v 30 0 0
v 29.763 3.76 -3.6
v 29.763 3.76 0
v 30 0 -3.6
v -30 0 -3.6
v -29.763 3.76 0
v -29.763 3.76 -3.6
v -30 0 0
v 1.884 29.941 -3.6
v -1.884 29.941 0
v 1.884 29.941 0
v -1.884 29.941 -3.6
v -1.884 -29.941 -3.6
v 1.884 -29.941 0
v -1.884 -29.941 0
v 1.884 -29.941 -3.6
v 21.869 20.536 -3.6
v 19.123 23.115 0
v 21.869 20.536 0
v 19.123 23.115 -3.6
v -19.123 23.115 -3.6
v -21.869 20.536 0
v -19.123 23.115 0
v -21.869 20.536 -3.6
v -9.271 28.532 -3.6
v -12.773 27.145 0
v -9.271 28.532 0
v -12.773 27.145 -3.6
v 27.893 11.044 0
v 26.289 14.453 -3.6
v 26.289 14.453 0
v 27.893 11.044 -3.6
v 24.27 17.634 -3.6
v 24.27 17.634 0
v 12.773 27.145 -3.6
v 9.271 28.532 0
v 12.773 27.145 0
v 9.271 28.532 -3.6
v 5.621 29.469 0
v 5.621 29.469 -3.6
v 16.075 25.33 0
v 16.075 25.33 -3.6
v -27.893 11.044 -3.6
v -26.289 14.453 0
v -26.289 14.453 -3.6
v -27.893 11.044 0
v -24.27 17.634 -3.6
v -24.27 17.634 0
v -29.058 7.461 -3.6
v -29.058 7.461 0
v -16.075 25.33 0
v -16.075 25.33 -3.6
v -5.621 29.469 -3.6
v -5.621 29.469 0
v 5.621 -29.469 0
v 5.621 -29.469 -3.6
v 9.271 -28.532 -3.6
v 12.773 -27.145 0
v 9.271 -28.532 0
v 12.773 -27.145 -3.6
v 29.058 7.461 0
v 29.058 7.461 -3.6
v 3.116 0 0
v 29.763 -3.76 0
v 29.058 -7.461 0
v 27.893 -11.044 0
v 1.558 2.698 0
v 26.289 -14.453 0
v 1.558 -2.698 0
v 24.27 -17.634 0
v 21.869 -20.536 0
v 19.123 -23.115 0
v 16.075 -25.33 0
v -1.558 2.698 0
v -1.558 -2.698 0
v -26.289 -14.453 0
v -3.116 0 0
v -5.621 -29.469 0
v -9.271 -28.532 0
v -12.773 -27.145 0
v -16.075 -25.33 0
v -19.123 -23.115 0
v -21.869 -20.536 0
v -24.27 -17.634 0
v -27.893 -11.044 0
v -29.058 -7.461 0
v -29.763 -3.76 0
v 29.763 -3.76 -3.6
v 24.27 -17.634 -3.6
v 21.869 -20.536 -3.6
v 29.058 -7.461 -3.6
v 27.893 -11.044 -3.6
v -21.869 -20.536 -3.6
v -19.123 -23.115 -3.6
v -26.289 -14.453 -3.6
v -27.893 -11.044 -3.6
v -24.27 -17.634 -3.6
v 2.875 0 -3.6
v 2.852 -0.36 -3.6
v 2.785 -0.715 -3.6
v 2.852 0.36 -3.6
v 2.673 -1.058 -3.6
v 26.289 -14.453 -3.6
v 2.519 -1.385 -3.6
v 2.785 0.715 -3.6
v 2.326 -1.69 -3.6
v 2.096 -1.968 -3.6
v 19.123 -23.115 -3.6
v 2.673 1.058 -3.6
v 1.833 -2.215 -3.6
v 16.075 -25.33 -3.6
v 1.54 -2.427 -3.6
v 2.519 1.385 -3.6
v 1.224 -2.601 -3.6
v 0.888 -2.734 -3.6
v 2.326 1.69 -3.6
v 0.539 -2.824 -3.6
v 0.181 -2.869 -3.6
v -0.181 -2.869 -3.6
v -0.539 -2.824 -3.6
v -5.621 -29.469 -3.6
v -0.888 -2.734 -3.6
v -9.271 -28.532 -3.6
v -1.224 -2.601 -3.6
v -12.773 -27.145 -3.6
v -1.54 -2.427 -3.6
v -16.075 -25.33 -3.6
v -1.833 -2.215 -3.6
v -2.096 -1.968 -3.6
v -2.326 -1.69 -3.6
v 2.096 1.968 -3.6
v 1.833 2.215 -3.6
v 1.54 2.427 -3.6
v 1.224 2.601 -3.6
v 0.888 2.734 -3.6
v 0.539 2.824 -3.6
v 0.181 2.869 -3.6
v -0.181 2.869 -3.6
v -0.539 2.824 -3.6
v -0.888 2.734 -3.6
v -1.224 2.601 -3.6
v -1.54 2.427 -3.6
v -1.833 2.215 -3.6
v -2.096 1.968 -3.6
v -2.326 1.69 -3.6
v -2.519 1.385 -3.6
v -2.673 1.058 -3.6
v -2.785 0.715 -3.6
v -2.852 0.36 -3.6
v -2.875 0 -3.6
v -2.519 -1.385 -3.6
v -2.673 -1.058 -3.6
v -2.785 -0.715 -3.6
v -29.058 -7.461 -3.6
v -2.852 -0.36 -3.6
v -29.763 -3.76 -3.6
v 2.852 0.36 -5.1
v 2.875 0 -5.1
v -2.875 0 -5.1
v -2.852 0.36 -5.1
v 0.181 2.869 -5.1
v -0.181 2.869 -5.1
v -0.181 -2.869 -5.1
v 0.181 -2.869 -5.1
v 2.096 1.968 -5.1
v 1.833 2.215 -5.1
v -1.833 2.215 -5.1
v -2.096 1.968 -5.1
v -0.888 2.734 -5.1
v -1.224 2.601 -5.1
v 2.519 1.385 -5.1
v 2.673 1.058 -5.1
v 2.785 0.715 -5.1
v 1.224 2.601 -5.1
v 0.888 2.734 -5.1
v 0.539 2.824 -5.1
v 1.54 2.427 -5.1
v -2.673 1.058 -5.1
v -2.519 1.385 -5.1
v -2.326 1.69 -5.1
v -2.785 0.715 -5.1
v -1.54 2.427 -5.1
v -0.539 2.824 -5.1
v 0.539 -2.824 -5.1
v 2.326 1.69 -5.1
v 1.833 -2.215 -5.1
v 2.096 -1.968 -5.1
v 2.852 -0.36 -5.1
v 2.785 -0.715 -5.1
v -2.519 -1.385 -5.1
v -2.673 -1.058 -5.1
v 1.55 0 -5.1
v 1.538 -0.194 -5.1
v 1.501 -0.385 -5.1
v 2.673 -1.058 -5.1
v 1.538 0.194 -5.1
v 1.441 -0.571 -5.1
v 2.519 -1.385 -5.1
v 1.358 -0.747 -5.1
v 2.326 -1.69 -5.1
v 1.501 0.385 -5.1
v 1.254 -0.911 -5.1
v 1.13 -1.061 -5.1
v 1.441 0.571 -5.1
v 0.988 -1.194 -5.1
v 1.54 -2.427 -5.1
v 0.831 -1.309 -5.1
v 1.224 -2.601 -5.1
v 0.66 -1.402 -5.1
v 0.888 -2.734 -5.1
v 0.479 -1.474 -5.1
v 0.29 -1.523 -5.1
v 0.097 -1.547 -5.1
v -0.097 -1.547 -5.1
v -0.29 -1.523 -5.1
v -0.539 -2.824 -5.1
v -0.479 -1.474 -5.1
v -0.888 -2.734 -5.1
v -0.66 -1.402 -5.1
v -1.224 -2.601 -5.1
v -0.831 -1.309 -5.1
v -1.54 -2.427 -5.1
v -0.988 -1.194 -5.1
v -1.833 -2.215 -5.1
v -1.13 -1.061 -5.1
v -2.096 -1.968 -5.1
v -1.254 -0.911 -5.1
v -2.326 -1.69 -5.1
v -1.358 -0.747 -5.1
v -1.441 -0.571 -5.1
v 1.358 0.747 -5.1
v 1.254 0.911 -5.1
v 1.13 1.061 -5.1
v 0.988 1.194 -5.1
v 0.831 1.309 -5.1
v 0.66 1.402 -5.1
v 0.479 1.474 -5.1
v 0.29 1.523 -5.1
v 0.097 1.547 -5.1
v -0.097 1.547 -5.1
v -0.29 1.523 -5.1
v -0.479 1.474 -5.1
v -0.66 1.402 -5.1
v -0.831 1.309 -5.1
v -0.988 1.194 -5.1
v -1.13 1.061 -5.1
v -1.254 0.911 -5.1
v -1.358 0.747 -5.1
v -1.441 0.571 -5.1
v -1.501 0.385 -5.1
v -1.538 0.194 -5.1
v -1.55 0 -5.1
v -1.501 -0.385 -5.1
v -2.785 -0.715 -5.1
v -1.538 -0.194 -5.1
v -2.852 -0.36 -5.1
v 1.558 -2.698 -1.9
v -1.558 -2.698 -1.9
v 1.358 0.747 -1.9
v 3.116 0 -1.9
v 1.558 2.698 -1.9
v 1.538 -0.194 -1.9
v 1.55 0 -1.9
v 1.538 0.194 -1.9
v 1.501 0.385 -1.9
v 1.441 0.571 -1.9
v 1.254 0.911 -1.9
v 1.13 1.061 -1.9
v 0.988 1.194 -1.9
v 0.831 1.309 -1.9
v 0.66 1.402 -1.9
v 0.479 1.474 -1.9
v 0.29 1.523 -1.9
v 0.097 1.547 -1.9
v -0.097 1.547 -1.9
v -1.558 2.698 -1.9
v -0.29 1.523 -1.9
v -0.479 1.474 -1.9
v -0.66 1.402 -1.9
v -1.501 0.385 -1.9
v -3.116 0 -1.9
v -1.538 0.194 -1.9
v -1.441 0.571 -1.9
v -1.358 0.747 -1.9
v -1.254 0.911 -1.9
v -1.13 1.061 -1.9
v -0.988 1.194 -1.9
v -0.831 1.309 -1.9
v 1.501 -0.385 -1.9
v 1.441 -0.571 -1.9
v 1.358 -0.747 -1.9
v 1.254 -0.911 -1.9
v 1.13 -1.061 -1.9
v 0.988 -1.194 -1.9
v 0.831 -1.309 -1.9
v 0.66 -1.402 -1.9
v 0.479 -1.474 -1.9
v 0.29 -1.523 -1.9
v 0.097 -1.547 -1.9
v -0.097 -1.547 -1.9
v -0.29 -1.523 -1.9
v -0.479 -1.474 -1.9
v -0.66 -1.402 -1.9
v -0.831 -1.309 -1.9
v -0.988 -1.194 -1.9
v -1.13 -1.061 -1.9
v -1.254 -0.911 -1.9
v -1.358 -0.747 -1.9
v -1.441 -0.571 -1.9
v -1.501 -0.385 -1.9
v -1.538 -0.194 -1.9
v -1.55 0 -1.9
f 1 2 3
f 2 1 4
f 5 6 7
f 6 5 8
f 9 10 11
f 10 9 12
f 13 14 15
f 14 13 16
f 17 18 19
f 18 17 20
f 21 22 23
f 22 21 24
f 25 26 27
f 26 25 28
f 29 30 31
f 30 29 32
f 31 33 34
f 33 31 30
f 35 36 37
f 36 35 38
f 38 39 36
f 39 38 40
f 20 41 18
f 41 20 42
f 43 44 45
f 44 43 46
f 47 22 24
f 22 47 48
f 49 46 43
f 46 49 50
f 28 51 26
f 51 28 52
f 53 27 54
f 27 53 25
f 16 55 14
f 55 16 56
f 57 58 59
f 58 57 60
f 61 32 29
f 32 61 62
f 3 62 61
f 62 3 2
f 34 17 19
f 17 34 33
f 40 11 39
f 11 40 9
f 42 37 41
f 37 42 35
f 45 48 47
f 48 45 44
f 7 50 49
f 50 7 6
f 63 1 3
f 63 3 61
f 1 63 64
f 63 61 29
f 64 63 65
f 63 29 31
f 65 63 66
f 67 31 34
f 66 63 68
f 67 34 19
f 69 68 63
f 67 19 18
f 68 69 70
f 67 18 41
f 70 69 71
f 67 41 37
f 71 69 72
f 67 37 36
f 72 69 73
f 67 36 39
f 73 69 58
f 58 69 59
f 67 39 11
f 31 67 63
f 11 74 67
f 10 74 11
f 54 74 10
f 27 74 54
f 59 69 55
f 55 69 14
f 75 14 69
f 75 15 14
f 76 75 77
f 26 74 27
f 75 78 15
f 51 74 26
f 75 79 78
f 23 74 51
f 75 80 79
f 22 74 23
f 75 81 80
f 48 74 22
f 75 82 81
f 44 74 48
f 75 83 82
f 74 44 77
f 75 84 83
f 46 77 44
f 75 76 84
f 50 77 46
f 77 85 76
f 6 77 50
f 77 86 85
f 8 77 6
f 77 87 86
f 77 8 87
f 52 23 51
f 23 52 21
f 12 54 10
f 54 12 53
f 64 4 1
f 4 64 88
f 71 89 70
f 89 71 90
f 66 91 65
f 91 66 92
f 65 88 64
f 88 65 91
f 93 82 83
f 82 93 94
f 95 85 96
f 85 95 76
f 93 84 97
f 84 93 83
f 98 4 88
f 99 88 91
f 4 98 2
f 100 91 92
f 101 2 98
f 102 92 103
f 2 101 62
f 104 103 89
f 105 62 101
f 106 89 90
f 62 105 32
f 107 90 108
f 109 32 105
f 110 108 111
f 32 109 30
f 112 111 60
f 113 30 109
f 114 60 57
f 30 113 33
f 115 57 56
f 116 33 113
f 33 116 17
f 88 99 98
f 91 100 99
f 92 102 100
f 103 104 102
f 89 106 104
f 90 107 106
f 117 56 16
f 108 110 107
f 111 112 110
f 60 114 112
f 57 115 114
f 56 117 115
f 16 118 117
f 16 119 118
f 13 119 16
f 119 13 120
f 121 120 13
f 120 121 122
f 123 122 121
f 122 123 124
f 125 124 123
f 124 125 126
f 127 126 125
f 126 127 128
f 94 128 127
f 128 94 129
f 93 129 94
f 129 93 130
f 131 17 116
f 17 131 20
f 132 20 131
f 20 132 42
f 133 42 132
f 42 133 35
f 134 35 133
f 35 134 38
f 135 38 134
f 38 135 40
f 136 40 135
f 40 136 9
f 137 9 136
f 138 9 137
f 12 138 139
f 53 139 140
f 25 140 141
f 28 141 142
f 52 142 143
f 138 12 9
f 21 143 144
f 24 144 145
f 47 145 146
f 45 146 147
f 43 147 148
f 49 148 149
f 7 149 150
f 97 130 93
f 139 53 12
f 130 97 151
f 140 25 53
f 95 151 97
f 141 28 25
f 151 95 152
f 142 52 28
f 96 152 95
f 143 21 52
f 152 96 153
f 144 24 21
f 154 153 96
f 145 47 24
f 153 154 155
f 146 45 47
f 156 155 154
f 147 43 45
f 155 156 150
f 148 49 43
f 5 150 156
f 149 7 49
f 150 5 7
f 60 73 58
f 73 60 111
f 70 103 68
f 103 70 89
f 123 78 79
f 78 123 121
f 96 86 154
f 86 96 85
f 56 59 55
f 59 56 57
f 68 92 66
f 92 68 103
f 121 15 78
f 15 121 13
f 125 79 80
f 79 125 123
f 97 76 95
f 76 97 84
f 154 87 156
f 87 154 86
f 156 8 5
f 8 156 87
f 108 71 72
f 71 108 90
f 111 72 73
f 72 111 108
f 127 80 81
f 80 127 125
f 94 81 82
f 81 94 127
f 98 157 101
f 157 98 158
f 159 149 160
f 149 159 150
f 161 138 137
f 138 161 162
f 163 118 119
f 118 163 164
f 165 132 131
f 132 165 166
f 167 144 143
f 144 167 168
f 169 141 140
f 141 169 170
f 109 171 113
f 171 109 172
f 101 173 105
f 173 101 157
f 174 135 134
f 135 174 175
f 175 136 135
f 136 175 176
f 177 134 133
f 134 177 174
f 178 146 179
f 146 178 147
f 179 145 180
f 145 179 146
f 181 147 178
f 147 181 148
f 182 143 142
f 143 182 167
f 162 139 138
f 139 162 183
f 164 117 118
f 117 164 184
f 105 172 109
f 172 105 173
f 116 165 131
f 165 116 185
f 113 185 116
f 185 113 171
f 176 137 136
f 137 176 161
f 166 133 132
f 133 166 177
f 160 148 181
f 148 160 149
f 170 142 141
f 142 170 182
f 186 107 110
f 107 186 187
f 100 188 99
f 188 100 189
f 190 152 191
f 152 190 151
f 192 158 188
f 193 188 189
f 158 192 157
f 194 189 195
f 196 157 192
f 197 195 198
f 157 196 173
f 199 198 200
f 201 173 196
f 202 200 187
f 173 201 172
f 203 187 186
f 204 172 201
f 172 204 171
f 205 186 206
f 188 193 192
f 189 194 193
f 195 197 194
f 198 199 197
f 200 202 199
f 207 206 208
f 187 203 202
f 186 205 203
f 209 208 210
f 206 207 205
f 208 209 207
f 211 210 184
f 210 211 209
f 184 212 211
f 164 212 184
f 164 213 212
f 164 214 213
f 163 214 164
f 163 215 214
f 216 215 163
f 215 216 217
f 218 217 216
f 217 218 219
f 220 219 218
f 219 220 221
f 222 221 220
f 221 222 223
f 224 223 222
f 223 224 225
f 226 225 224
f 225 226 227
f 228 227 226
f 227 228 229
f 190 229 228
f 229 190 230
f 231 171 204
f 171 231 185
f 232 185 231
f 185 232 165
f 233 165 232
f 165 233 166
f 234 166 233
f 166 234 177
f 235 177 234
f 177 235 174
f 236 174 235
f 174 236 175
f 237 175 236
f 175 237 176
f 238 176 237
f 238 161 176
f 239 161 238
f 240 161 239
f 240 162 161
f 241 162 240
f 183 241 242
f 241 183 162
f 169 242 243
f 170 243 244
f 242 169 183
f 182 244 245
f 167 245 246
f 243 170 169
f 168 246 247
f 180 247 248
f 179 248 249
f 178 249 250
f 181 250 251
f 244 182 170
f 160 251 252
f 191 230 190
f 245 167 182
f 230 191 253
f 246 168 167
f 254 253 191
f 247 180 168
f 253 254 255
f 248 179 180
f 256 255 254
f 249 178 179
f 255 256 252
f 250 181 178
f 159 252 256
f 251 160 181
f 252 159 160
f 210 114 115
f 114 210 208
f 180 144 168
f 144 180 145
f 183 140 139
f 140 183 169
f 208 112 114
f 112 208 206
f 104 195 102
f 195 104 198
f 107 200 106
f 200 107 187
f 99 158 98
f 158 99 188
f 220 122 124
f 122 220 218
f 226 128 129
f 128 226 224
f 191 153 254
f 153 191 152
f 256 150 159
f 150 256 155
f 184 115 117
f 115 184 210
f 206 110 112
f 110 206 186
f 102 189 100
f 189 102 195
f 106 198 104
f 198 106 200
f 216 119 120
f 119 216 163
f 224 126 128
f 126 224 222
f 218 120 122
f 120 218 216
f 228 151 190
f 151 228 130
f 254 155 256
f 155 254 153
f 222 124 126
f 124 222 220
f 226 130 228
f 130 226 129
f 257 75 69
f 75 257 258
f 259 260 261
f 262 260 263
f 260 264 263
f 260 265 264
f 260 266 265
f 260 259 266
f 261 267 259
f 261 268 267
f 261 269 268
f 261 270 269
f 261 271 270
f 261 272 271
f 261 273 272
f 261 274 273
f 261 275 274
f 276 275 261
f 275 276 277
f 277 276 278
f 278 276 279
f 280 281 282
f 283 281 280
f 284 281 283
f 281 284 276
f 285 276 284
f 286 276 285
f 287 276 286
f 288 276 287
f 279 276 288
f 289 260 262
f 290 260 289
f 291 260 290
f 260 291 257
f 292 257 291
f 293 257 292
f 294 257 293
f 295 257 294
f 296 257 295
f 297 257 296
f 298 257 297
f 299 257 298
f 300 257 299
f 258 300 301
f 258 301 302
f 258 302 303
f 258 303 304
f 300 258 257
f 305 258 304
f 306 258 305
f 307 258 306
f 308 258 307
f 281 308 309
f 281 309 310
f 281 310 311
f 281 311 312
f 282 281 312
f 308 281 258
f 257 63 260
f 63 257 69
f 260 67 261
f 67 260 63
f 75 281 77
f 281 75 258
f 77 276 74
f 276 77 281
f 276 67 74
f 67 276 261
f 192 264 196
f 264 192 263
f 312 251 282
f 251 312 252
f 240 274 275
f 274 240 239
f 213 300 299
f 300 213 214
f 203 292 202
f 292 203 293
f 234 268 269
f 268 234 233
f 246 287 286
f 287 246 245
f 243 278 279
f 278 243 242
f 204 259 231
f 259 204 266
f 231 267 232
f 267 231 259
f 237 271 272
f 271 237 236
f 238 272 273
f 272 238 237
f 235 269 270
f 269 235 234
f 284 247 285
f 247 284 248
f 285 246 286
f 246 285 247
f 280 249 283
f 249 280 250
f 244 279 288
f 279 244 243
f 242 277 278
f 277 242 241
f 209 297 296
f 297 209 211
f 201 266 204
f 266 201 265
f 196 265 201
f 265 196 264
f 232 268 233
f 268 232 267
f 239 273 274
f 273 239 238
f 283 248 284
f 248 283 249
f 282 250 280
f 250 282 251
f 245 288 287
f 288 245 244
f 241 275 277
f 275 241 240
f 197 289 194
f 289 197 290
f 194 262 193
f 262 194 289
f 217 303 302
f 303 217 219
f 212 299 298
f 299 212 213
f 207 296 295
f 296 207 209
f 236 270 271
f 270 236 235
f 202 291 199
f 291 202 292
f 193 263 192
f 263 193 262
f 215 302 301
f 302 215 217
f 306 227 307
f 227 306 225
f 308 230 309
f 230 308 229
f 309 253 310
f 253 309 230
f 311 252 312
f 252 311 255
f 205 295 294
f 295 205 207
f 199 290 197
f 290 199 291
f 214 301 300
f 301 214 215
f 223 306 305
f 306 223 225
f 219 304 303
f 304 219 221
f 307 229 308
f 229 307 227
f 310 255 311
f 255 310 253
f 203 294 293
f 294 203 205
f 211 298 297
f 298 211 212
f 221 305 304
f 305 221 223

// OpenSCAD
$fn = 50;


difference() {
	union() {
		translate(v = [0, 0, -3.6000000000]) {
			cylinder(h = 3.6000000000, r = 30.0000000000);
		}
		#translate(v = [0, 0, -5.1000000000]) {
			cylinder(h = 5.1000000000, r = 2.8750000000);
		}
	}
	union() {
		translate(v = [0, 0, 0]) {
			rotate(a = [0, 0, 0]) {
				difference() {
					union() {
						translate(v = [0, 0, -1.9000000000]) {
							linear_extrude(height = 1.9000000000) {
								polygon(points = [[3.1158000000, 0.0000000000], [1.5579000000, 2.6983619531], [-1.5579000000, 2.6983619531], [-3.1158000000, 0.0000000000], [-1.5579000000, -2.6983619531], [1.5579000000, -2.6983619531]]);
							}
						}
					}
					union();
				}
			}
		}
		#translate(v = [0, 0, -100.0000000000]) {
			cylinder(h = 200, r = 1.5500000000);
		}
	}
}
